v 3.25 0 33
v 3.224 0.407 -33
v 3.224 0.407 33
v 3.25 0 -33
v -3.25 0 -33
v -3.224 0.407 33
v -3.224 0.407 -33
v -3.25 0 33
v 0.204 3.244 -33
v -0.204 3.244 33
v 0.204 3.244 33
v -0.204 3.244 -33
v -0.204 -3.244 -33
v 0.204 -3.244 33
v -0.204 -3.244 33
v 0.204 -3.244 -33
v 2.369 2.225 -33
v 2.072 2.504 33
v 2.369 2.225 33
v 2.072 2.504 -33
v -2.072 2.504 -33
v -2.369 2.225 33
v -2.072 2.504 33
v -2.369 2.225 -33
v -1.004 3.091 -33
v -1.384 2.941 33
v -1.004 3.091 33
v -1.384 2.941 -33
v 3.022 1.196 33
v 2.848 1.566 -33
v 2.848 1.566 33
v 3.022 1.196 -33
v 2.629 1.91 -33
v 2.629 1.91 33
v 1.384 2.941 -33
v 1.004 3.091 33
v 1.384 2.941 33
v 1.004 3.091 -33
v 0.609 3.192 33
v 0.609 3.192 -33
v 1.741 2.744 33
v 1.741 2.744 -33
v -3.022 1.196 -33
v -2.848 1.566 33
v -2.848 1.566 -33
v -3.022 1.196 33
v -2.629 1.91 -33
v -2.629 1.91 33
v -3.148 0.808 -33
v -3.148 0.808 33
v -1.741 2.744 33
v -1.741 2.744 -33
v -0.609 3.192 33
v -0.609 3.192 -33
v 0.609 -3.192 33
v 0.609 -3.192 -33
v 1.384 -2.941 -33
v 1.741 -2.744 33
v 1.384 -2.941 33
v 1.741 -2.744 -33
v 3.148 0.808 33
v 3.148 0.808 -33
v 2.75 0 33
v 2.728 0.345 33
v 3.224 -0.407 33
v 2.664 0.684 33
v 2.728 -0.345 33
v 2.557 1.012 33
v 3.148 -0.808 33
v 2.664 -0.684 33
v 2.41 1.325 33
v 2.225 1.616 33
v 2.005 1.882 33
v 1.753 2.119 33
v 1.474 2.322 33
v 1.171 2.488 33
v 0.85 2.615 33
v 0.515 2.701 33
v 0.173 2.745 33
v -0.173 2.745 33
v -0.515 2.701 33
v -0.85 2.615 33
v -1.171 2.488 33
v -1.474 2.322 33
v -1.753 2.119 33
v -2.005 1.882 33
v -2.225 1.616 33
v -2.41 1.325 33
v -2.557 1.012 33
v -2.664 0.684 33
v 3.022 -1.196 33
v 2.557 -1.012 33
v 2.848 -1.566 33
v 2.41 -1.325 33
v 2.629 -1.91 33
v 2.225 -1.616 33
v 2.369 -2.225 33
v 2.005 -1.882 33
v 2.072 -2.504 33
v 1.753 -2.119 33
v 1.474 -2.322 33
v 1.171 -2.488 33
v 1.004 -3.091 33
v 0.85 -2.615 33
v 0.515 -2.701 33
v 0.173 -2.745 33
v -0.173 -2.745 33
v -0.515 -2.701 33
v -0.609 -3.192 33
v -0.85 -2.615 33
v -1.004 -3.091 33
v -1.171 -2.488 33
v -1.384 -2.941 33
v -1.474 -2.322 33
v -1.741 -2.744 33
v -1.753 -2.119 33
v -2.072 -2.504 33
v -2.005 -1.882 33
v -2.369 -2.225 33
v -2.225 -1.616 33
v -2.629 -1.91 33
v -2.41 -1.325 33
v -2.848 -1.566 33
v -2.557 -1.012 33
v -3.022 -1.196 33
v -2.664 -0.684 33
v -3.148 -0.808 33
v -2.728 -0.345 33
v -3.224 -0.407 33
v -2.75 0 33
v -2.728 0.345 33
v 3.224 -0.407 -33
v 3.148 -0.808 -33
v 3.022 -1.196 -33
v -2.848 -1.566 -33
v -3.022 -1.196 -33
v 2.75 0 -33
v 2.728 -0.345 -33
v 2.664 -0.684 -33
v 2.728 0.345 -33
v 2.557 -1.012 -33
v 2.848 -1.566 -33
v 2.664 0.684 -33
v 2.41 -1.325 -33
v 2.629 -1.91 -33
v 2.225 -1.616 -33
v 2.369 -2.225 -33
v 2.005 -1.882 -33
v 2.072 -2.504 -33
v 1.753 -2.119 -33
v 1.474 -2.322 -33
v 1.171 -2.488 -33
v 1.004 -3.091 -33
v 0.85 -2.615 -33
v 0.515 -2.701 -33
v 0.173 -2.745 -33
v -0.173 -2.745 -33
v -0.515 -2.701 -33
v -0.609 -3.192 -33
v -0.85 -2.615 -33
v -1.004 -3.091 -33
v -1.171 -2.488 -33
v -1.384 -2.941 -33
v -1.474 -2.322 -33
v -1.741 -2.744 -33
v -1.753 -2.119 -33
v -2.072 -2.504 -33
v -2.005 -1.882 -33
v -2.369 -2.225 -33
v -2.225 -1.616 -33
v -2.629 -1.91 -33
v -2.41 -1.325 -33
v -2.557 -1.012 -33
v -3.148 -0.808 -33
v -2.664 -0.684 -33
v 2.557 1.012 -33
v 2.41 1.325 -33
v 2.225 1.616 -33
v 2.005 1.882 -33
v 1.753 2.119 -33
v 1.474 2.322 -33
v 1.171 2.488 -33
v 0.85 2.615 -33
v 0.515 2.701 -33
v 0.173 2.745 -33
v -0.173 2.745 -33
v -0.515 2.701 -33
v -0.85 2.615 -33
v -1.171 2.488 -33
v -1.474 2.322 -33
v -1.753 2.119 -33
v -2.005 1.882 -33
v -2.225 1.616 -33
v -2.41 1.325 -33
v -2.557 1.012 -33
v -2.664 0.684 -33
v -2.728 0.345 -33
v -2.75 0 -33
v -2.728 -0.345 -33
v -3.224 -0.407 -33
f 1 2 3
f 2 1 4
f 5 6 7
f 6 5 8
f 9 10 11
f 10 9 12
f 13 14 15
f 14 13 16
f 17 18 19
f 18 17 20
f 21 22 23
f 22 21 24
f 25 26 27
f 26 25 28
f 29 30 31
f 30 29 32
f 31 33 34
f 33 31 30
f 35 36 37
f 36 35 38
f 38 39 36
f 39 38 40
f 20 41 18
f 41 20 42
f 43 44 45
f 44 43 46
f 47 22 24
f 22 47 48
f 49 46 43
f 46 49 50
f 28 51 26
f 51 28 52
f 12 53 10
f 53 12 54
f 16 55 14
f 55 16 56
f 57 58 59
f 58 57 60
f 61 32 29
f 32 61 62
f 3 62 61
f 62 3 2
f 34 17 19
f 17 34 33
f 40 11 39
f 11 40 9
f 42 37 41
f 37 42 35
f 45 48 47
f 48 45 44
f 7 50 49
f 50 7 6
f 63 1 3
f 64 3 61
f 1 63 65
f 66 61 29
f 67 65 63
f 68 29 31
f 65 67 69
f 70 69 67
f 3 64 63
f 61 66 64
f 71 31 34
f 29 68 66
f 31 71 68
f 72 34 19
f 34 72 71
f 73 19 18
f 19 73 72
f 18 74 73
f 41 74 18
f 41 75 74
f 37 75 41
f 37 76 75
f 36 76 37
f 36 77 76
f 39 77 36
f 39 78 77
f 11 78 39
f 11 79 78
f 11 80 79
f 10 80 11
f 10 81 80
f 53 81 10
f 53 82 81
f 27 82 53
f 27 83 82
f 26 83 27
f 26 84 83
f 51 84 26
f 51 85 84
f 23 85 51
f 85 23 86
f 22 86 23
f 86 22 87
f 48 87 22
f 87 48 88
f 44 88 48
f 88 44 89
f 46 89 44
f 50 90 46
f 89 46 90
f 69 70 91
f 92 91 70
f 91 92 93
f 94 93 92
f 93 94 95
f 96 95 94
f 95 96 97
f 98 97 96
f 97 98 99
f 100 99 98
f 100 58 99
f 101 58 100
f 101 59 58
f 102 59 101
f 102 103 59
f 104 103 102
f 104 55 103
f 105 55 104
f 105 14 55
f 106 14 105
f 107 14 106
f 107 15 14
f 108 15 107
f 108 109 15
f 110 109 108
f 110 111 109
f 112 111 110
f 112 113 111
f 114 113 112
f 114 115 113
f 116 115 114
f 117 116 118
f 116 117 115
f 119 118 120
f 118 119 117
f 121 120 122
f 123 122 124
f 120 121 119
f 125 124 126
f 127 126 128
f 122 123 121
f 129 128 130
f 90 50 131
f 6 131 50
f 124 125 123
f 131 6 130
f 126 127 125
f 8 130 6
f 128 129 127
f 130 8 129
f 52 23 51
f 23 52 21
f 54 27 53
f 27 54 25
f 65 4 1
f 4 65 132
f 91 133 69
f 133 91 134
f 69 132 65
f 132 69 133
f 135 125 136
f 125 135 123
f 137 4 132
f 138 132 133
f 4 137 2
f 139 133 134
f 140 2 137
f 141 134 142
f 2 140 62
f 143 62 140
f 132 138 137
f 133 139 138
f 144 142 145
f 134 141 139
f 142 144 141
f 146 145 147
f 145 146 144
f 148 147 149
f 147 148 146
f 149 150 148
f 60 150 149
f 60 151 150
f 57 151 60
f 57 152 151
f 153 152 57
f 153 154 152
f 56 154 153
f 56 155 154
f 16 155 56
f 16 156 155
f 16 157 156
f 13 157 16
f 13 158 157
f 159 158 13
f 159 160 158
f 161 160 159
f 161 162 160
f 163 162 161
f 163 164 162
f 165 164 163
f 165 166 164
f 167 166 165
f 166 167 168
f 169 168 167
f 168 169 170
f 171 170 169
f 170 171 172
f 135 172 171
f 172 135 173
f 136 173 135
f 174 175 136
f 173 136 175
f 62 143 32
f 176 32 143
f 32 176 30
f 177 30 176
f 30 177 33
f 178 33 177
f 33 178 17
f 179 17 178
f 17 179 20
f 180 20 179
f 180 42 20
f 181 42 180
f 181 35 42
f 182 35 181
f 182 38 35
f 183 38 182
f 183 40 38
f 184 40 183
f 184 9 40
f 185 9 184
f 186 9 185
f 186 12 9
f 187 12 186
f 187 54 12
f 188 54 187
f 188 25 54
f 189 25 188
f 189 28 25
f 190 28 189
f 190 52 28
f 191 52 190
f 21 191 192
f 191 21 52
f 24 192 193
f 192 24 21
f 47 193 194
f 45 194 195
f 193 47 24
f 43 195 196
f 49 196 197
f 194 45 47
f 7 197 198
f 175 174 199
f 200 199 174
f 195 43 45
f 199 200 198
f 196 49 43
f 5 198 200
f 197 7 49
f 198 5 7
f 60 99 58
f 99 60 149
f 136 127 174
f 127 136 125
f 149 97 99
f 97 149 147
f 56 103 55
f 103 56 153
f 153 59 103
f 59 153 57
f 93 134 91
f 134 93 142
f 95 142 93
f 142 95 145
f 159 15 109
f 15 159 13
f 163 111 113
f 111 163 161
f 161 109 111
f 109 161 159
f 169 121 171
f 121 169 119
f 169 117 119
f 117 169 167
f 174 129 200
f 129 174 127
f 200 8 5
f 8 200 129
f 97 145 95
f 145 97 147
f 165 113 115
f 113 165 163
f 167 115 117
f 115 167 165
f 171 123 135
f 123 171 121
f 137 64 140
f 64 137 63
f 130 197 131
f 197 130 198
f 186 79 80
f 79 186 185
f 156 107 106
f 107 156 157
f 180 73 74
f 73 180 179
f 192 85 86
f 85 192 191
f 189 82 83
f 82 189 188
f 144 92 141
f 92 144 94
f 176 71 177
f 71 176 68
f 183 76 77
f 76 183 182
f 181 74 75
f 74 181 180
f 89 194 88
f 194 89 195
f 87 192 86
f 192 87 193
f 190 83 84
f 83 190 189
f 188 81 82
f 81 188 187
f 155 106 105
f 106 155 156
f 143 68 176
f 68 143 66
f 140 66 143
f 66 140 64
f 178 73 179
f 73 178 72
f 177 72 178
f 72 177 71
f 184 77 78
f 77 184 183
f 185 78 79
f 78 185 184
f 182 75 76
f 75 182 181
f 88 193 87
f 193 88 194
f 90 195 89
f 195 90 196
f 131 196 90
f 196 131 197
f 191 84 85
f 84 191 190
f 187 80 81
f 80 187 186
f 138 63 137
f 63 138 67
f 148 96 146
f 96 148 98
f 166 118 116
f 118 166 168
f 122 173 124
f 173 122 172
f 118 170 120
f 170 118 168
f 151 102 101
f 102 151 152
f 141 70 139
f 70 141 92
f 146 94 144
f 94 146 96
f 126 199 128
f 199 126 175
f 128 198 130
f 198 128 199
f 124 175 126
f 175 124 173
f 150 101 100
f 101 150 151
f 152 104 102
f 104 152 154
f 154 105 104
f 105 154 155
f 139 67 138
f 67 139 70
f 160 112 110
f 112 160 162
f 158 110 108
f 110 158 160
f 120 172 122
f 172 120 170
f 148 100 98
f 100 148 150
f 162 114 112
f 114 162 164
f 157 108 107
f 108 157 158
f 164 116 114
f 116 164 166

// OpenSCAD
$fn = 50;


difference() {
	union() {
		translate(v = [0, 0, -33.0000000000]) {
			cylinder(h = 66, r = 3.2500000000);
		}
	}
	union() {
		translate(v = [0, 0, -100.0000000000]) {
			cylinder(h = 200, r = 2.7500000000);
		}
	}
}
